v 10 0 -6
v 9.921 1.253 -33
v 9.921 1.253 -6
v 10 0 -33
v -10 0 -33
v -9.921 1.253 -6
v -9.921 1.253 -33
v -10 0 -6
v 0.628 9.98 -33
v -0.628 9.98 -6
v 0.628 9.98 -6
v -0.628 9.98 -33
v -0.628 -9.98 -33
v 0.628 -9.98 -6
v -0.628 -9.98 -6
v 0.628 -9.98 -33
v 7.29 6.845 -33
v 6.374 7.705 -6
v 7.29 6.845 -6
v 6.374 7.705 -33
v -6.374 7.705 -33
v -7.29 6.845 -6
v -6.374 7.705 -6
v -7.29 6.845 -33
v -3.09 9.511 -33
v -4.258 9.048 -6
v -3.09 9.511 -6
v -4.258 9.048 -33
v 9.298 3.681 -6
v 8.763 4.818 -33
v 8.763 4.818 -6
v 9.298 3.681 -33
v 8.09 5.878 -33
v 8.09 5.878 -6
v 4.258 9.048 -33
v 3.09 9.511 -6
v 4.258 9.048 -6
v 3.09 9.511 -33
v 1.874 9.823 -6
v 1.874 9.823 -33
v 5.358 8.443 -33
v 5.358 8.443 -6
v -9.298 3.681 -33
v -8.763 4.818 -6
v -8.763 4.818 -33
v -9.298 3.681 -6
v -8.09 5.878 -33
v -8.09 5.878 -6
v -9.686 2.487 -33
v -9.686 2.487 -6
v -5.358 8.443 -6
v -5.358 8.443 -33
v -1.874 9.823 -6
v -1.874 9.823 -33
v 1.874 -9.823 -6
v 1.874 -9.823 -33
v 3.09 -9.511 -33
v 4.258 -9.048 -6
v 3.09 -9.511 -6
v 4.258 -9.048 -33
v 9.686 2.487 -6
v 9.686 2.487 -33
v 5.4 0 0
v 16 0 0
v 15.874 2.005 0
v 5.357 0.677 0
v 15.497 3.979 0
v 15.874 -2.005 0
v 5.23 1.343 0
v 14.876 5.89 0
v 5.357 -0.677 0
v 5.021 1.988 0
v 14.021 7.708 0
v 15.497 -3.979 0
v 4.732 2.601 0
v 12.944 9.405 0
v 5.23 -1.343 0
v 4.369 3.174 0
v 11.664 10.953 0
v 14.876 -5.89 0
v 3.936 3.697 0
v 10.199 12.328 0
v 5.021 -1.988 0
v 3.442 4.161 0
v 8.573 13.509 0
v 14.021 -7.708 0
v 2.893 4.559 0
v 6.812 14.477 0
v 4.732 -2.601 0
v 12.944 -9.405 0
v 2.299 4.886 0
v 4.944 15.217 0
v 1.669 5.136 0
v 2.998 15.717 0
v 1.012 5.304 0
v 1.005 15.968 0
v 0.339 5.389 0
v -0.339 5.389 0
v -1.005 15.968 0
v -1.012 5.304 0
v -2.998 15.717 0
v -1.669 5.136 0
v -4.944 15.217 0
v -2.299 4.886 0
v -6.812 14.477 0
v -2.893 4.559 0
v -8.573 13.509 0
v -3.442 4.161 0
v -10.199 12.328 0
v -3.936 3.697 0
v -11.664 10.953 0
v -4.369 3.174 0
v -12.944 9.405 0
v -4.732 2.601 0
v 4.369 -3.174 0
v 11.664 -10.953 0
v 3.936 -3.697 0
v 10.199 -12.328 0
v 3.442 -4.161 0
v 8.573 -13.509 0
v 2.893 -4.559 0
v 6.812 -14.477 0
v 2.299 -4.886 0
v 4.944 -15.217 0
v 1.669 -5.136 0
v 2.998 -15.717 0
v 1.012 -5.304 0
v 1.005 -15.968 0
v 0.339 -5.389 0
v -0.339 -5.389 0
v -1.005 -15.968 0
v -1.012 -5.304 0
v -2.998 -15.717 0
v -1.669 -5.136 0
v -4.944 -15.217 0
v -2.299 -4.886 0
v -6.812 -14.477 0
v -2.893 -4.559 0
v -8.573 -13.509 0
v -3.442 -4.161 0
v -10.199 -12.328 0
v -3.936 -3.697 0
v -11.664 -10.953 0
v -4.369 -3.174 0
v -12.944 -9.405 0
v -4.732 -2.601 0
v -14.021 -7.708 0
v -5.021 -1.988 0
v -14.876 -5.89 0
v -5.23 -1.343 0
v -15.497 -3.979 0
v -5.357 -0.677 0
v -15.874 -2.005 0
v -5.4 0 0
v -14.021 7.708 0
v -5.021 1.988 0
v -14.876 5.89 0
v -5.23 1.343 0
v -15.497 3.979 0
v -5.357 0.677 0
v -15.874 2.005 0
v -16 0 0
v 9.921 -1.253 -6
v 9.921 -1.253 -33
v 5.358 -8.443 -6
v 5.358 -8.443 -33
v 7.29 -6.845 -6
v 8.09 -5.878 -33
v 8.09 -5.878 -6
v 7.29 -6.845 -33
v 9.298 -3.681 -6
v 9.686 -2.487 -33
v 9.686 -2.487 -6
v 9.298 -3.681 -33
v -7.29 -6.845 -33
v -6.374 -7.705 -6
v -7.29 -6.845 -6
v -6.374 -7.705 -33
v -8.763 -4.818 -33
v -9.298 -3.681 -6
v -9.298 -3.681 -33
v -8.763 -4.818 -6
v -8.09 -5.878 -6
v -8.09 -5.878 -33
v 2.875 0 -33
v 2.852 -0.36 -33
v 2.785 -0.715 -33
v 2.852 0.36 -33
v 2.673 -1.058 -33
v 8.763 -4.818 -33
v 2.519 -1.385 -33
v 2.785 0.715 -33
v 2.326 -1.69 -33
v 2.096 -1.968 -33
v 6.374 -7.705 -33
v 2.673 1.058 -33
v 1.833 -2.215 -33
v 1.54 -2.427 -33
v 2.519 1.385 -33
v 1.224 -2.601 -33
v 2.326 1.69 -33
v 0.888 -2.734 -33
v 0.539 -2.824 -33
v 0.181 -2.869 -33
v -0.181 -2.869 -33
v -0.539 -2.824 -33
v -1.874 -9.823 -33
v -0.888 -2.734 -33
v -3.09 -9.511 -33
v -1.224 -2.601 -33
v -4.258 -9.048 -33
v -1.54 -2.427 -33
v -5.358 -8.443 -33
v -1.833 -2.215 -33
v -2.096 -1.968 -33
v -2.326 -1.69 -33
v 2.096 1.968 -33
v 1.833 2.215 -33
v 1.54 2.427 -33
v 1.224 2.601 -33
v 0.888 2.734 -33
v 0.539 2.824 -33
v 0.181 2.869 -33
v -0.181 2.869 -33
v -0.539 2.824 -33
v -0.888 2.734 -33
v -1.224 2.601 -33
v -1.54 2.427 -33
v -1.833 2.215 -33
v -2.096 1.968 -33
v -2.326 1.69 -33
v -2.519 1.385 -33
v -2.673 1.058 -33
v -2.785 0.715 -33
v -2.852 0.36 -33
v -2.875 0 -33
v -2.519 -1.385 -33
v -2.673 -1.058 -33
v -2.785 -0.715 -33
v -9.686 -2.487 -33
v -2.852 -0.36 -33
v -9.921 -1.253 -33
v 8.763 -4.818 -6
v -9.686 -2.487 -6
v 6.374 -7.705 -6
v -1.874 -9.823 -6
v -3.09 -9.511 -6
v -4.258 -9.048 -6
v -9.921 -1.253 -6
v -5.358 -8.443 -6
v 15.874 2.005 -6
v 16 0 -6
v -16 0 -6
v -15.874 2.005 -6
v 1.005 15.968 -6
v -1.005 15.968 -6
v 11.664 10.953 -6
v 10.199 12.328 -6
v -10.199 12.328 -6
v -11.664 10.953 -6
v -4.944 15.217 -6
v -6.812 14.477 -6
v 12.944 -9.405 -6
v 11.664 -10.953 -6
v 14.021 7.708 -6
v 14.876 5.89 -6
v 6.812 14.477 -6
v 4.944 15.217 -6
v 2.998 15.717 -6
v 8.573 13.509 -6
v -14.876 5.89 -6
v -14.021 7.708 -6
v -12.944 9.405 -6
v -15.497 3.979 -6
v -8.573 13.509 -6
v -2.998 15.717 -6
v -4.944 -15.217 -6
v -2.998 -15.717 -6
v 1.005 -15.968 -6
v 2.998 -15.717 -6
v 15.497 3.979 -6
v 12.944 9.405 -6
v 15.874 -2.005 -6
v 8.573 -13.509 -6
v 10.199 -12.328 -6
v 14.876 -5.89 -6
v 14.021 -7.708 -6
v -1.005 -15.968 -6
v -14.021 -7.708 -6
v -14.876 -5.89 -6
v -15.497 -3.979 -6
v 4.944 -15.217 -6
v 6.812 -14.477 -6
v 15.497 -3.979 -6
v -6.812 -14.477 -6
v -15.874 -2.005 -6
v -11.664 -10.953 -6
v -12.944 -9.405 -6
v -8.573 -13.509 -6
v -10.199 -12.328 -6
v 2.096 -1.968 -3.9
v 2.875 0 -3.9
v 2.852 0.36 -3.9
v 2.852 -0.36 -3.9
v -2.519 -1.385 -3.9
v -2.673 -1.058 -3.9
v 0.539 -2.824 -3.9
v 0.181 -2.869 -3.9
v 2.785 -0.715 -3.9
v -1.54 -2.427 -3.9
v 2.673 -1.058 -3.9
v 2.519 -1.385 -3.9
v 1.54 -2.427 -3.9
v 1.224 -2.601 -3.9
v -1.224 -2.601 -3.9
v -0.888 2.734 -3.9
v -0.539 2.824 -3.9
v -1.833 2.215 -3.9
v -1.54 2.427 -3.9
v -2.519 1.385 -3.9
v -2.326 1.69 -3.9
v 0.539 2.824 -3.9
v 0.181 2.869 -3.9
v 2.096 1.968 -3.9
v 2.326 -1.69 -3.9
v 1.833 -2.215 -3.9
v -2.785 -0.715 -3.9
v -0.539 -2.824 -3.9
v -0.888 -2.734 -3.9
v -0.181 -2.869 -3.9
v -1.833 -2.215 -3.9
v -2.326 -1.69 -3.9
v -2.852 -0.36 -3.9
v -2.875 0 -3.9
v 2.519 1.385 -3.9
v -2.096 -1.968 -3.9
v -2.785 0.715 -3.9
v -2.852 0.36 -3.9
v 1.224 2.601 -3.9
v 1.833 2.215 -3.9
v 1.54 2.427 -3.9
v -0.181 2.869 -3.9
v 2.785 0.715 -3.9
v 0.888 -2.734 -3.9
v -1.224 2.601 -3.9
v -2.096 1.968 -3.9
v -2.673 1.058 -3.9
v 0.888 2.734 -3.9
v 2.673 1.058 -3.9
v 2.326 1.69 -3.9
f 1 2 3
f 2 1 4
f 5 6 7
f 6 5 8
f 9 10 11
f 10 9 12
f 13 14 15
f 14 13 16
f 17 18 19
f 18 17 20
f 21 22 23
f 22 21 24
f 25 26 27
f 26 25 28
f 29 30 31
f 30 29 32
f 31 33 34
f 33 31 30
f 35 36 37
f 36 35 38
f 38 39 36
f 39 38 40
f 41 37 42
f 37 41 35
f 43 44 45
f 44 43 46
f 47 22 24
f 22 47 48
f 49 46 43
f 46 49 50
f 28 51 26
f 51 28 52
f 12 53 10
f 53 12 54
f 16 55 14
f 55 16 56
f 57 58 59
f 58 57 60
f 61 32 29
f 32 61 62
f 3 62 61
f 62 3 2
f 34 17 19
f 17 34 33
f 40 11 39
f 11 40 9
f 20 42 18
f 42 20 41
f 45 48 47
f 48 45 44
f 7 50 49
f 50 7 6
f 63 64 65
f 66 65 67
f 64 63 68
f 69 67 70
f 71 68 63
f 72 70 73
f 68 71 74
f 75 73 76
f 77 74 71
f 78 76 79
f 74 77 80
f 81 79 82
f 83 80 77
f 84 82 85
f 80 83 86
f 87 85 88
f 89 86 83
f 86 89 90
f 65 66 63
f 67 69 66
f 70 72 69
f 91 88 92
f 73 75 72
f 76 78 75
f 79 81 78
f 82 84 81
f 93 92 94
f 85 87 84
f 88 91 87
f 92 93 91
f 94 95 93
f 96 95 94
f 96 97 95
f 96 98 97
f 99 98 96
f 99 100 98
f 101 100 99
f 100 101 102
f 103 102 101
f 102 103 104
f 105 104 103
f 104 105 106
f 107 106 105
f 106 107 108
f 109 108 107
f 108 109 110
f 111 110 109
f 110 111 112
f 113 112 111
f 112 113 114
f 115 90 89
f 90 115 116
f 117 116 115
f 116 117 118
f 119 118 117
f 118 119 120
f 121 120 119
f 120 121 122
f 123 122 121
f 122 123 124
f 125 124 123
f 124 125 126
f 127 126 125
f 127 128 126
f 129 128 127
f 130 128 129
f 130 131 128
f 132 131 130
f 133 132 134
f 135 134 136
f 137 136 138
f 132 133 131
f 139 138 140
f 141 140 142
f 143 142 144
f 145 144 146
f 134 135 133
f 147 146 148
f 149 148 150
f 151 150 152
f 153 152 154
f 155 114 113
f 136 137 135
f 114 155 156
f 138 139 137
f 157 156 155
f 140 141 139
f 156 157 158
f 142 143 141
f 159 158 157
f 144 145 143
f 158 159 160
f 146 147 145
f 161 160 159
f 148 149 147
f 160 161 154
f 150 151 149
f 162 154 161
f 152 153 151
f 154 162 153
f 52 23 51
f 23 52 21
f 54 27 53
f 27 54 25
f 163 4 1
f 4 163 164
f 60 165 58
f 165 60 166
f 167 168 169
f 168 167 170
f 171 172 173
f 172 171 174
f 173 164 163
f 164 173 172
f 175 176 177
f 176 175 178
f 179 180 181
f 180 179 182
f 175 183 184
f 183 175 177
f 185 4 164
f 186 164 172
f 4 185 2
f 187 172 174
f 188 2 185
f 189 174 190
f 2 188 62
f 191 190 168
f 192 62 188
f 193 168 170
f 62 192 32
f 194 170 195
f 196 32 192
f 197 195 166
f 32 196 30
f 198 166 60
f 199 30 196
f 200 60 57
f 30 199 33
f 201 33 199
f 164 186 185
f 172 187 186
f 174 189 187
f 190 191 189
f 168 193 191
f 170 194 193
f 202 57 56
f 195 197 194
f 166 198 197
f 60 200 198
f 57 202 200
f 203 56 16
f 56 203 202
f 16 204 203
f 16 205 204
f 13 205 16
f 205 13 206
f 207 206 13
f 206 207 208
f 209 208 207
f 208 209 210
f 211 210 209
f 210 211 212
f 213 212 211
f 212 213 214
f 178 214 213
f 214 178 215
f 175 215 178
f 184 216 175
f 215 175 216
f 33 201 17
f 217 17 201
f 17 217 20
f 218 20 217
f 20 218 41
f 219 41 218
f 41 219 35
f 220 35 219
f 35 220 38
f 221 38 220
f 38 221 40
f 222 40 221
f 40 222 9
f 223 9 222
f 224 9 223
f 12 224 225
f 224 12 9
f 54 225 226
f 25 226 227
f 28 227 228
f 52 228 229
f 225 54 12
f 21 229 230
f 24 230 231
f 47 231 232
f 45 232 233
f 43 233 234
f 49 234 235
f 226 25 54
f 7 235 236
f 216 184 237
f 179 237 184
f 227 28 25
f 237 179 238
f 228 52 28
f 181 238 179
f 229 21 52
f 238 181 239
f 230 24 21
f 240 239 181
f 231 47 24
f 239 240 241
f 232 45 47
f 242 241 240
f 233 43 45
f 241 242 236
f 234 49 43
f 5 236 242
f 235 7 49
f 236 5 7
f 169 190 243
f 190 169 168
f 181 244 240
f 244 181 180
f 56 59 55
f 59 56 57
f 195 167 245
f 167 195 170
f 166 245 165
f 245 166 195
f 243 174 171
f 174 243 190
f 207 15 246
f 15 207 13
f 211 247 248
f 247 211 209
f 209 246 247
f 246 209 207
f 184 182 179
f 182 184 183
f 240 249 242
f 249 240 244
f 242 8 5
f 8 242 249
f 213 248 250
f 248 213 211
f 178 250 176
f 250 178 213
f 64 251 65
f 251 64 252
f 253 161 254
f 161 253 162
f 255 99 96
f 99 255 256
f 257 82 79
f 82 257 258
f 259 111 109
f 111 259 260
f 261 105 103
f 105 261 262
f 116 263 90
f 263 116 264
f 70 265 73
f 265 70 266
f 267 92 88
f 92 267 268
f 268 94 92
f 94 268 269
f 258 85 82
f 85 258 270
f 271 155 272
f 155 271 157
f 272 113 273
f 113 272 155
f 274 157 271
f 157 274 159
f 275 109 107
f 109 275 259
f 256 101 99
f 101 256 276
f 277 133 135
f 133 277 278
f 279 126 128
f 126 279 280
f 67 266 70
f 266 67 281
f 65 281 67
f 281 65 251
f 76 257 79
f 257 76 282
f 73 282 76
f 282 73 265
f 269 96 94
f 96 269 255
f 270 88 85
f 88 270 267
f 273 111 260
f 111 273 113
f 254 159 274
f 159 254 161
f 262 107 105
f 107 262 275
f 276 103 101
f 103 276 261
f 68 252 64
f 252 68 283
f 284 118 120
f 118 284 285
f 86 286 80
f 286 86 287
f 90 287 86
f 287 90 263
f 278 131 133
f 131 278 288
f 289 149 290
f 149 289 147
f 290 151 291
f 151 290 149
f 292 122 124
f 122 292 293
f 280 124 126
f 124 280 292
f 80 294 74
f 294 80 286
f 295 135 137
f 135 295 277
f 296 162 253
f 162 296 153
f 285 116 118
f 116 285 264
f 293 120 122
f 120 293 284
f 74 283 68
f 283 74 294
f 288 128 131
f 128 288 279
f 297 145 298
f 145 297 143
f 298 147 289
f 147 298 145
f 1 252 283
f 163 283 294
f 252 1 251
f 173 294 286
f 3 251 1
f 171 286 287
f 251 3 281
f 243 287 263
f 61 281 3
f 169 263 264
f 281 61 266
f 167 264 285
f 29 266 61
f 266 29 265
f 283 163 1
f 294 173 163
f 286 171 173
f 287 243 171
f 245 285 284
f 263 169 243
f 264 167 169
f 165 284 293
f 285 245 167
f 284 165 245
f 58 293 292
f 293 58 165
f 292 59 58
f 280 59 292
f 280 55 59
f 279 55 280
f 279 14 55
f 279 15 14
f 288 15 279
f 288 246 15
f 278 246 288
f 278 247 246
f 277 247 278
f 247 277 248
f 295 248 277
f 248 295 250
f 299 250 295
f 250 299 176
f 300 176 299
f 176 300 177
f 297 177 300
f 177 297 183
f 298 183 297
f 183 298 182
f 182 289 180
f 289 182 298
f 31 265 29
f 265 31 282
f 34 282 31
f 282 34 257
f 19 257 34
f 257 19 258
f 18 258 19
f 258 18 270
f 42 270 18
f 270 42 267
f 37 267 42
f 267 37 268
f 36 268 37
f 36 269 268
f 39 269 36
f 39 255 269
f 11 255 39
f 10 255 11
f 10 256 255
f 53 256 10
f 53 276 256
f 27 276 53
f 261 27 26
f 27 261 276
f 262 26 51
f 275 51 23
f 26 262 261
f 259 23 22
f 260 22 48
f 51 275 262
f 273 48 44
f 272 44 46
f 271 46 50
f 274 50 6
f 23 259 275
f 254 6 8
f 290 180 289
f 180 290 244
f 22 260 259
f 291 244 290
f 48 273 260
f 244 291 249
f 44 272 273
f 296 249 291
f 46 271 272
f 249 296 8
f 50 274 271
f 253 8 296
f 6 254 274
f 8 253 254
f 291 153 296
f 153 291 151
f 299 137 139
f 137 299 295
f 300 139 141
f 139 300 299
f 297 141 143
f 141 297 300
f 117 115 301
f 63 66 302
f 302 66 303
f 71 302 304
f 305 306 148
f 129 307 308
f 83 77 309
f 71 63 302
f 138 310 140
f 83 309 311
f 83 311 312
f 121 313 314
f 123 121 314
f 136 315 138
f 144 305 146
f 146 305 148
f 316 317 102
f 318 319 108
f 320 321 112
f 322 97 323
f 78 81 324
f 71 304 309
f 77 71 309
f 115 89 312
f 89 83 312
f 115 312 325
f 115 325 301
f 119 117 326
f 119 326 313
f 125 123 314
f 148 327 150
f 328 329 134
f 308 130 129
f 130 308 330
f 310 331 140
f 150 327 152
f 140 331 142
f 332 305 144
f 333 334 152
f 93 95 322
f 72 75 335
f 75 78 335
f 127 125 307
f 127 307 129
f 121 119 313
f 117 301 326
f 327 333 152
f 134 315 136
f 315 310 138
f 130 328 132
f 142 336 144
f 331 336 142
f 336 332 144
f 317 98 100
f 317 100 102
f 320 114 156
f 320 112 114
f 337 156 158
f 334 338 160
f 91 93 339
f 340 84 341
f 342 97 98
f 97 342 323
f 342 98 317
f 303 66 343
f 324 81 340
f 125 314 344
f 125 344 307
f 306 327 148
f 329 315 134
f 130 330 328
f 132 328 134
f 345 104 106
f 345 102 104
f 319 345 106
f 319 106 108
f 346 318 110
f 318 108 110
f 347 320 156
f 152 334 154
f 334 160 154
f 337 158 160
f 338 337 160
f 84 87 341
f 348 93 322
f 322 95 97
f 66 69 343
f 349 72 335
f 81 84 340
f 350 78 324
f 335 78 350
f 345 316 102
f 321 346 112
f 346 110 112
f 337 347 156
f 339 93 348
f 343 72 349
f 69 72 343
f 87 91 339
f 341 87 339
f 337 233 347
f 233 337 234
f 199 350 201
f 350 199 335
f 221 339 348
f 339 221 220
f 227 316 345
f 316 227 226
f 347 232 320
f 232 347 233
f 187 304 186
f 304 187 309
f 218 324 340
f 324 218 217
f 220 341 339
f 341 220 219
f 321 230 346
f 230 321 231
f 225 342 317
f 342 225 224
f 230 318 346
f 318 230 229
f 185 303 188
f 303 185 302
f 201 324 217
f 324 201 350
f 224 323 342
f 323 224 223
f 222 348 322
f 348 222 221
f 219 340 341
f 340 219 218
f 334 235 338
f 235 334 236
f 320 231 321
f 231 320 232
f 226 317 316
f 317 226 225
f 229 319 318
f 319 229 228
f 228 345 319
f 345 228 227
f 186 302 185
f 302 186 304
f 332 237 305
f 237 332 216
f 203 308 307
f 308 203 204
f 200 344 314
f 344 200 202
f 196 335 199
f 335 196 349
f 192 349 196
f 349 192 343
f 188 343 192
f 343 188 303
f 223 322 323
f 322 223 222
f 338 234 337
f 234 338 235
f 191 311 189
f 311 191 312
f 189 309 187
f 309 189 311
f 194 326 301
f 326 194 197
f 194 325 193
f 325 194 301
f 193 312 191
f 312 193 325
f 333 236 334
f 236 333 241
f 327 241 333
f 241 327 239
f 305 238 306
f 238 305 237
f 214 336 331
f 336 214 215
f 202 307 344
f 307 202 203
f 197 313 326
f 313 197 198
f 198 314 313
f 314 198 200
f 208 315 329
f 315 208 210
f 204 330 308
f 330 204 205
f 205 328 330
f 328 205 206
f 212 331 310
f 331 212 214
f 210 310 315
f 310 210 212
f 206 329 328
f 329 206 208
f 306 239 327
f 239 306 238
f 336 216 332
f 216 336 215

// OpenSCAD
$fn = 50;


difference() {
	union() {
		translate(v = [0, 0, -33.0000000000]) {
			cylinder(h = 33, r = 10.0000000000);
		}
		translate(v = [0, 0, -6.0000000000]) {
			cylinder(h = 6, r = 16.0000000000);
		}
	}
	union() {
		translate(v = [0, 0, 0]) {
			rotate(a = [0, 0, 0]) {
				difference() {
					union() {
						#translate(v = [0, 0, -33.0000000000]) {
							cylinder(h = 33, r = 2.6000000000);
						}
						#translate(v = [0, 0, -3.9000000000]) {
							cylinder(h = 3.9000000000, r = 10.0000000000, r1 = 2.8750000000, r2 = 5.4000000000);
						}
						#translate(v = [0, 0, -33.0000000000]) {
							cylinder(h = 33, r = 2.8750000000);
						}
						#translate(v = [0, 0, -33.0000000000]) {
							cylinder(h = 33, r = 2.6000000000);
						}
					}
					union();
				}
			}
		}
	}
}
